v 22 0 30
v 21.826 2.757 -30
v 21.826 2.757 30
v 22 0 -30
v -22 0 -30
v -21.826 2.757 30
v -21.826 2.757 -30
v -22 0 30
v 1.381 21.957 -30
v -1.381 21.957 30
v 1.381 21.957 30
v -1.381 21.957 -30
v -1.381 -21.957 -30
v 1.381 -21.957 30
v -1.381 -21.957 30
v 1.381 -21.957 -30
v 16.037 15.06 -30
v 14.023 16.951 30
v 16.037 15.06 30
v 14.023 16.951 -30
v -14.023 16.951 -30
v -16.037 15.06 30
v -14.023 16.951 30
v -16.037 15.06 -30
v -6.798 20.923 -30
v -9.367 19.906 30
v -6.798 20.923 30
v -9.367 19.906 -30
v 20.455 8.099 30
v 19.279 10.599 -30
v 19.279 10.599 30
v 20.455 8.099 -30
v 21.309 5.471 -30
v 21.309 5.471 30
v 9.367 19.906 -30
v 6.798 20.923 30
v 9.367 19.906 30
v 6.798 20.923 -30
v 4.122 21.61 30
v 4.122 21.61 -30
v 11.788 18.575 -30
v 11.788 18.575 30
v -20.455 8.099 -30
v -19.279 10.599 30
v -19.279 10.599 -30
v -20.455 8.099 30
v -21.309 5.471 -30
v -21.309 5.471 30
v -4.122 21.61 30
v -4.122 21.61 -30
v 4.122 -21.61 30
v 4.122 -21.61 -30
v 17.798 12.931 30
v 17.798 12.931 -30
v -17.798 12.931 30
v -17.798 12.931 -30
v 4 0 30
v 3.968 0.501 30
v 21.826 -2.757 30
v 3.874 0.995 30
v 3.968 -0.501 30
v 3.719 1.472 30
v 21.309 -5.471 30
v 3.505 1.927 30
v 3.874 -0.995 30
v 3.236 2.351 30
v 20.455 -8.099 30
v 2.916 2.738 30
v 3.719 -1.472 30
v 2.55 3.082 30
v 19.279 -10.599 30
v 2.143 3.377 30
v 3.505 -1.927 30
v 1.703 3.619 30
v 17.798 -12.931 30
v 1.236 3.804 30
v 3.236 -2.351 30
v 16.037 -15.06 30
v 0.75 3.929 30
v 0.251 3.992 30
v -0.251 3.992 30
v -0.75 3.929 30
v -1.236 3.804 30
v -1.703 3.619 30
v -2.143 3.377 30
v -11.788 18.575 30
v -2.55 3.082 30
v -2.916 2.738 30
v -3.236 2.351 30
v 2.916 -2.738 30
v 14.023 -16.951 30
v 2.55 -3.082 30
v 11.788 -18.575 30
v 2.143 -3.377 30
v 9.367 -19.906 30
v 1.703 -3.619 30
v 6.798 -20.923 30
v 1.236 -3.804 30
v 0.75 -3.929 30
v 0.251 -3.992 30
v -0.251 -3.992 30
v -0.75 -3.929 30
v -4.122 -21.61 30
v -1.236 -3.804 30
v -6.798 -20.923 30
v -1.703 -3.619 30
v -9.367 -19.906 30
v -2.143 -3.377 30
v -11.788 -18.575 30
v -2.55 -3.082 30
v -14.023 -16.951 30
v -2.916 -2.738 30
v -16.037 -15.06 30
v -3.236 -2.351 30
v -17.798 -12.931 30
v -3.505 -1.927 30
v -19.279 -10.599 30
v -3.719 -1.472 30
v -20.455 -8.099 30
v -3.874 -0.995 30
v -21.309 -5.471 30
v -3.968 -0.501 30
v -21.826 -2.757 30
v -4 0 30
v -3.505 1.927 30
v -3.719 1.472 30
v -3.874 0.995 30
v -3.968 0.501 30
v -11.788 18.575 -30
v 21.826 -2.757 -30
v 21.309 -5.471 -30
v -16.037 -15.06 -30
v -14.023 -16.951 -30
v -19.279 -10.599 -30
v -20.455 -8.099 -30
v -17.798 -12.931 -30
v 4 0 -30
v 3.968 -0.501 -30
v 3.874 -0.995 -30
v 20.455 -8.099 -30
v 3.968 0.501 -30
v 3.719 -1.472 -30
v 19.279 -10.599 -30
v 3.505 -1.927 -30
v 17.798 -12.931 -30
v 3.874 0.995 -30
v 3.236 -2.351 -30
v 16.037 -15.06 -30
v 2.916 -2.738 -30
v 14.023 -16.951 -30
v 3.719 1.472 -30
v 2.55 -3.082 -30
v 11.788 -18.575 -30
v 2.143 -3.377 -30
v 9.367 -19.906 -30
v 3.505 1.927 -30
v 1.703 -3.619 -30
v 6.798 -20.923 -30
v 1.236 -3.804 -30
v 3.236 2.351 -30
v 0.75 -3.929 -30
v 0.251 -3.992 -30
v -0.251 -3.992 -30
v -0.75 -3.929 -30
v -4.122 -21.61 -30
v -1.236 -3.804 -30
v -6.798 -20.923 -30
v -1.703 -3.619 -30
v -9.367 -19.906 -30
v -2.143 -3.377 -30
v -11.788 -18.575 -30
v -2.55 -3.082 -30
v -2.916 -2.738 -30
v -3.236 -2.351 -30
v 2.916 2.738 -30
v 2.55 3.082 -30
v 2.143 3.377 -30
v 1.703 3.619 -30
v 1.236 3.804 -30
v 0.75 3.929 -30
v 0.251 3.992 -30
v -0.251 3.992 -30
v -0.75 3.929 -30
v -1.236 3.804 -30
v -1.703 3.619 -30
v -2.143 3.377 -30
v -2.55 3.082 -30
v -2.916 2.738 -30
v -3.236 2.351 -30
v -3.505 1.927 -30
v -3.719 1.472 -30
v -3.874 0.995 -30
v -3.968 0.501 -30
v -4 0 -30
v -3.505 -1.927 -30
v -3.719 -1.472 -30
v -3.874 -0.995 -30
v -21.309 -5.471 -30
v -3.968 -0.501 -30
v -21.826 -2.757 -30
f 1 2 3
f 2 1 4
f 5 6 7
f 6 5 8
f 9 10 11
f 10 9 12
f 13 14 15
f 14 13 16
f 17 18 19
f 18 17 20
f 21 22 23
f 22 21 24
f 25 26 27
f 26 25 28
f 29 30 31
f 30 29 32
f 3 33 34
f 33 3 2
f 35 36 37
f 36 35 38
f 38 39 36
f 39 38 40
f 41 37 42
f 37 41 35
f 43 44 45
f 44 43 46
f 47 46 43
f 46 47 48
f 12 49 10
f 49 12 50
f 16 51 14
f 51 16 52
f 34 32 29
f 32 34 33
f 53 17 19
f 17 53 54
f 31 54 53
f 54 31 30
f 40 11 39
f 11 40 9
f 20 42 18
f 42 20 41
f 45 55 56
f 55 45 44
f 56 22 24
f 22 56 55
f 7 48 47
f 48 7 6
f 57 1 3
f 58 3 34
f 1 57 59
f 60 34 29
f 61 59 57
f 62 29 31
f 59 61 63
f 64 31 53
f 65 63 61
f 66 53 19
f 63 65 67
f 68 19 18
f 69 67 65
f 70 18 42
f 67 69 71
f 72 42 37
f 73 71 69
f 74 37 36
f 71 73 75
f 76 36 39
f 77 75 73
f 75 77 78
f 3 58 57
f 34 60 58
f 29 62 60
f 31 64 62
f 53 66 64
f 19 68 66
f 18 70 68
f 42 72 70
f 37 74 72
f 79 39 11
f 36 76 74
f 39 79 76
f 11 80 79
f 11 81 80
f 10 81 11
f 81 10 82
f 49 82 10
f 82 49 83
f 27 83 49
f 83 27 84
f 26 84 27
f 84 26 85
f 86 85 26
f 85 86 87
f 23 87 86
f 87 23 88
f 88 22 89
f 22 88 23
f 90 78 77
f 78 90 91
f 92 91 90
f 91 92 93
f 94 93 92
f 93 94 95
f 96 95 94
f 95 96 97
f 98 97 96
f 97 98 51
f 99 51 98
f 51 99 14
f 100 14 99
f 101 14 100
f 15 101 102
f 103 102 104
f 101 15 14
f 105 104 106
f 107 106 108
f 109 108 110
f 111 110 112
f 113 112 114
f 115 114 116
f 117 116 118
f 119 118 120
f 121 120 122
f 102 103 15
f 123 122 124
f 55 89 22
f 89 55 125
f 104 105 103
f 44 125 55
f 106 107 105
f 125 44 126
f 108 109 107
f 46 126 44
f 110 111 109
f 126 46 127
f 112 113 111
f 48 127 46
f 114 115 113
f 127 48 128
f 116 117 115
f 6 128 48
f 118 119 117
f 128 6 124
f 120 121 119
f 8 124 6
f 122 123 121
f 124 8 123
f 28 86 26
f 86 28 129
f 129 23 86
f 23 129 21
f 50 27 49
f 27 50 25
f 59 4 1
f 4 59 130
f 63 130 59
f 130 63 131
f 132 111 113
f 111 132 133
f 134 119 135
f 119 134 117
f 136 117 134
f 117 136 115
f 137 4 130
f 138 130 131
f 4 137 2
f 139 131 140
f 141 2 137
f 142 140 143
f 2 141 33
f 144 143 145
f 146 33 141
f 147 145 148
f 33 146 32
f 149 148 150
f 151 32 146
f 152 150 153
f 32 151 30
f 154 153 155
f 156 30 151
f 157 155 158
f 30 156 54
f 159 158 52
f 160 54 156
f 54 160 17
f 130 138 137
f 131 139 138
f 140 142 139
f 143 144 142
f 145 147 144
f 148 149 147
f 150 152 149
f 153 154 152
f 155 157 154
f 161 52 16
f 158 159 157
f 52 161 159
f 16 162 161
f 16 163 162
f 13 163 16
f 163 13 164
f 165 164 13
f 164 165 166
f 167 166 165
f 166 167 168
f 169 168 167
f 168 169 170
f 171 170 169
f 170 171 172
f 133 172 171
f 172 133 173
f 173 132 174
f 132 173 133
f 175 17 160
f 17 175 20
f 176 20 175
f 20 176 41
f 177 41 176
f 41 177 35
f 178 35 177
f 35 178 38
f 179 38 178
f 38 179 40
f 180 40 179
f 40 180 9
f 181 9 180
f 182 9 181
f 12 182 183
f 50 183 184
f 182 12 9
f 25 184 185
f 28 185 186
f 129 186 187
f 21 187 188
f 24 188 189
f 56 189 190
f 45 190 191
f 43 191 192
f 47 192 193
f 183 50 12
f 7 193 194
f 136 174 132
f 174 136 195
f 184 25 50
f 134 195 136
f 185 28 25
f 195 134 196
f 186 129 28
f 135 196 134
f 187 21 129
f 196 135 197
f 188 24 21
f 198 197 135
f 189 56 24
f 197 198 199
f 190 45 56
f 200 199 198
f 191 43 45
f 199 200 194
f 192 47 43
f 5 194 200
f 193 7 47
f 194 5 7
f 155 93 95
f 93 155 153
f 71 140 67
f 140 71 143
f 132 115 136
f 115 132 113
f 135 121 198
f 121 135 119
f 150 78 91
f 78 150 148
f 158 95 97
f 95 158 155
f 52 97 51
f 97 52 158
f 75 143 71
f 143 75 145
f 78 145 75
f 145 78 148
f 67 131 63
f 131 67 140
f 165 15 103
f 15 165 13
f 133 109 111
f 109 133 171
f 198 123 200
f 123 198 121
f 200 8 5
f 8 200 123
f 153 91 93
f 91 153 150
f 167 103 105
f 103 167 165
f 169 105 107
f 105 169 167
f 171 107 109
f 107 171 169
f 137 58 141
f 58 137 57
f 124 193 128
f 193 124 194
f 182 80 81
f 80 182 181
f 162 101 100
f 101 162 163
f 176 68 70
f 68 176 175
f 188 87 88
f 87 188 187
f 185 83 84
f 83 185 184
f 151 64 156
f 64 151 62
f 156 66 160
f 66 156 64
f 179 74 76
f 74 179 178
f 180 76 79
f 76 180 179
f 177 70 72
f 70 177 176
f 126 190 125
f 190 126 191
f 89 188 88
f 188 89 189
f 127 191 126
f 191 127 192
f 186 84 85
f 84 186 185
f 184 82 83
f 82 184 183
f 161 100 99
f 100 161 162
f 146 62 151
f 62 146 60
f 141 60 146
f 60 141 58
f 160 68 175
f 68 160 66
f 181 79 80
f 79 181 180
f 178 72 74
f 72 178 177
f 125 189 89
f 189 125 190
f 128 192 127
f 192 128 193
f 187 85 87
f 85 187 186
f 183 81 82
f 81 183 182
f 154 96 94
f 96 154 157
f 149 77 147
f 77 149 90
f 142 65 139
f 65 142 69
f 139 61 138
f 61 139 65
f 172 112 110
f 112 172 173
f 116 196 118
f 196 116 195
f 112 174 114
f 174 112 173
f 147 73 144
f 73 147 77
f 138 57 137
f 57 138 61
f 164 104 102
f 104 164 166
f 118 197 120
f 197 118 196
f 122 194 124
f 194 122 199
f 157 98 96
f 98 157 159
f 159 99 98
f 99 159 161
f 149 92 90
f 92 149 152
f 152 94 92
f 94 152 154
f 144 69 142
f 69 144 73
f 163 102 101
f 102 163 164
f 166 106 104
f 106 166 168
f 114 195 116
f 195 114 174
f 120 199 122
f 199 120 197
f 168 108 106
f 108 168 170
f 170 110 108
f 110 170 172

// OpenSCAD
$fn = 50;


difference() {
	union() {
		translate(v = [0, 0, -30.0000000000]) {
			cylinder(h = 60, r = 22.0000000000);
		}
	}
	union() {
		translate(v = [0, 0, -100.0000000000]) {
			cylinder(h = 200, r = 4);
		}
	}
}
